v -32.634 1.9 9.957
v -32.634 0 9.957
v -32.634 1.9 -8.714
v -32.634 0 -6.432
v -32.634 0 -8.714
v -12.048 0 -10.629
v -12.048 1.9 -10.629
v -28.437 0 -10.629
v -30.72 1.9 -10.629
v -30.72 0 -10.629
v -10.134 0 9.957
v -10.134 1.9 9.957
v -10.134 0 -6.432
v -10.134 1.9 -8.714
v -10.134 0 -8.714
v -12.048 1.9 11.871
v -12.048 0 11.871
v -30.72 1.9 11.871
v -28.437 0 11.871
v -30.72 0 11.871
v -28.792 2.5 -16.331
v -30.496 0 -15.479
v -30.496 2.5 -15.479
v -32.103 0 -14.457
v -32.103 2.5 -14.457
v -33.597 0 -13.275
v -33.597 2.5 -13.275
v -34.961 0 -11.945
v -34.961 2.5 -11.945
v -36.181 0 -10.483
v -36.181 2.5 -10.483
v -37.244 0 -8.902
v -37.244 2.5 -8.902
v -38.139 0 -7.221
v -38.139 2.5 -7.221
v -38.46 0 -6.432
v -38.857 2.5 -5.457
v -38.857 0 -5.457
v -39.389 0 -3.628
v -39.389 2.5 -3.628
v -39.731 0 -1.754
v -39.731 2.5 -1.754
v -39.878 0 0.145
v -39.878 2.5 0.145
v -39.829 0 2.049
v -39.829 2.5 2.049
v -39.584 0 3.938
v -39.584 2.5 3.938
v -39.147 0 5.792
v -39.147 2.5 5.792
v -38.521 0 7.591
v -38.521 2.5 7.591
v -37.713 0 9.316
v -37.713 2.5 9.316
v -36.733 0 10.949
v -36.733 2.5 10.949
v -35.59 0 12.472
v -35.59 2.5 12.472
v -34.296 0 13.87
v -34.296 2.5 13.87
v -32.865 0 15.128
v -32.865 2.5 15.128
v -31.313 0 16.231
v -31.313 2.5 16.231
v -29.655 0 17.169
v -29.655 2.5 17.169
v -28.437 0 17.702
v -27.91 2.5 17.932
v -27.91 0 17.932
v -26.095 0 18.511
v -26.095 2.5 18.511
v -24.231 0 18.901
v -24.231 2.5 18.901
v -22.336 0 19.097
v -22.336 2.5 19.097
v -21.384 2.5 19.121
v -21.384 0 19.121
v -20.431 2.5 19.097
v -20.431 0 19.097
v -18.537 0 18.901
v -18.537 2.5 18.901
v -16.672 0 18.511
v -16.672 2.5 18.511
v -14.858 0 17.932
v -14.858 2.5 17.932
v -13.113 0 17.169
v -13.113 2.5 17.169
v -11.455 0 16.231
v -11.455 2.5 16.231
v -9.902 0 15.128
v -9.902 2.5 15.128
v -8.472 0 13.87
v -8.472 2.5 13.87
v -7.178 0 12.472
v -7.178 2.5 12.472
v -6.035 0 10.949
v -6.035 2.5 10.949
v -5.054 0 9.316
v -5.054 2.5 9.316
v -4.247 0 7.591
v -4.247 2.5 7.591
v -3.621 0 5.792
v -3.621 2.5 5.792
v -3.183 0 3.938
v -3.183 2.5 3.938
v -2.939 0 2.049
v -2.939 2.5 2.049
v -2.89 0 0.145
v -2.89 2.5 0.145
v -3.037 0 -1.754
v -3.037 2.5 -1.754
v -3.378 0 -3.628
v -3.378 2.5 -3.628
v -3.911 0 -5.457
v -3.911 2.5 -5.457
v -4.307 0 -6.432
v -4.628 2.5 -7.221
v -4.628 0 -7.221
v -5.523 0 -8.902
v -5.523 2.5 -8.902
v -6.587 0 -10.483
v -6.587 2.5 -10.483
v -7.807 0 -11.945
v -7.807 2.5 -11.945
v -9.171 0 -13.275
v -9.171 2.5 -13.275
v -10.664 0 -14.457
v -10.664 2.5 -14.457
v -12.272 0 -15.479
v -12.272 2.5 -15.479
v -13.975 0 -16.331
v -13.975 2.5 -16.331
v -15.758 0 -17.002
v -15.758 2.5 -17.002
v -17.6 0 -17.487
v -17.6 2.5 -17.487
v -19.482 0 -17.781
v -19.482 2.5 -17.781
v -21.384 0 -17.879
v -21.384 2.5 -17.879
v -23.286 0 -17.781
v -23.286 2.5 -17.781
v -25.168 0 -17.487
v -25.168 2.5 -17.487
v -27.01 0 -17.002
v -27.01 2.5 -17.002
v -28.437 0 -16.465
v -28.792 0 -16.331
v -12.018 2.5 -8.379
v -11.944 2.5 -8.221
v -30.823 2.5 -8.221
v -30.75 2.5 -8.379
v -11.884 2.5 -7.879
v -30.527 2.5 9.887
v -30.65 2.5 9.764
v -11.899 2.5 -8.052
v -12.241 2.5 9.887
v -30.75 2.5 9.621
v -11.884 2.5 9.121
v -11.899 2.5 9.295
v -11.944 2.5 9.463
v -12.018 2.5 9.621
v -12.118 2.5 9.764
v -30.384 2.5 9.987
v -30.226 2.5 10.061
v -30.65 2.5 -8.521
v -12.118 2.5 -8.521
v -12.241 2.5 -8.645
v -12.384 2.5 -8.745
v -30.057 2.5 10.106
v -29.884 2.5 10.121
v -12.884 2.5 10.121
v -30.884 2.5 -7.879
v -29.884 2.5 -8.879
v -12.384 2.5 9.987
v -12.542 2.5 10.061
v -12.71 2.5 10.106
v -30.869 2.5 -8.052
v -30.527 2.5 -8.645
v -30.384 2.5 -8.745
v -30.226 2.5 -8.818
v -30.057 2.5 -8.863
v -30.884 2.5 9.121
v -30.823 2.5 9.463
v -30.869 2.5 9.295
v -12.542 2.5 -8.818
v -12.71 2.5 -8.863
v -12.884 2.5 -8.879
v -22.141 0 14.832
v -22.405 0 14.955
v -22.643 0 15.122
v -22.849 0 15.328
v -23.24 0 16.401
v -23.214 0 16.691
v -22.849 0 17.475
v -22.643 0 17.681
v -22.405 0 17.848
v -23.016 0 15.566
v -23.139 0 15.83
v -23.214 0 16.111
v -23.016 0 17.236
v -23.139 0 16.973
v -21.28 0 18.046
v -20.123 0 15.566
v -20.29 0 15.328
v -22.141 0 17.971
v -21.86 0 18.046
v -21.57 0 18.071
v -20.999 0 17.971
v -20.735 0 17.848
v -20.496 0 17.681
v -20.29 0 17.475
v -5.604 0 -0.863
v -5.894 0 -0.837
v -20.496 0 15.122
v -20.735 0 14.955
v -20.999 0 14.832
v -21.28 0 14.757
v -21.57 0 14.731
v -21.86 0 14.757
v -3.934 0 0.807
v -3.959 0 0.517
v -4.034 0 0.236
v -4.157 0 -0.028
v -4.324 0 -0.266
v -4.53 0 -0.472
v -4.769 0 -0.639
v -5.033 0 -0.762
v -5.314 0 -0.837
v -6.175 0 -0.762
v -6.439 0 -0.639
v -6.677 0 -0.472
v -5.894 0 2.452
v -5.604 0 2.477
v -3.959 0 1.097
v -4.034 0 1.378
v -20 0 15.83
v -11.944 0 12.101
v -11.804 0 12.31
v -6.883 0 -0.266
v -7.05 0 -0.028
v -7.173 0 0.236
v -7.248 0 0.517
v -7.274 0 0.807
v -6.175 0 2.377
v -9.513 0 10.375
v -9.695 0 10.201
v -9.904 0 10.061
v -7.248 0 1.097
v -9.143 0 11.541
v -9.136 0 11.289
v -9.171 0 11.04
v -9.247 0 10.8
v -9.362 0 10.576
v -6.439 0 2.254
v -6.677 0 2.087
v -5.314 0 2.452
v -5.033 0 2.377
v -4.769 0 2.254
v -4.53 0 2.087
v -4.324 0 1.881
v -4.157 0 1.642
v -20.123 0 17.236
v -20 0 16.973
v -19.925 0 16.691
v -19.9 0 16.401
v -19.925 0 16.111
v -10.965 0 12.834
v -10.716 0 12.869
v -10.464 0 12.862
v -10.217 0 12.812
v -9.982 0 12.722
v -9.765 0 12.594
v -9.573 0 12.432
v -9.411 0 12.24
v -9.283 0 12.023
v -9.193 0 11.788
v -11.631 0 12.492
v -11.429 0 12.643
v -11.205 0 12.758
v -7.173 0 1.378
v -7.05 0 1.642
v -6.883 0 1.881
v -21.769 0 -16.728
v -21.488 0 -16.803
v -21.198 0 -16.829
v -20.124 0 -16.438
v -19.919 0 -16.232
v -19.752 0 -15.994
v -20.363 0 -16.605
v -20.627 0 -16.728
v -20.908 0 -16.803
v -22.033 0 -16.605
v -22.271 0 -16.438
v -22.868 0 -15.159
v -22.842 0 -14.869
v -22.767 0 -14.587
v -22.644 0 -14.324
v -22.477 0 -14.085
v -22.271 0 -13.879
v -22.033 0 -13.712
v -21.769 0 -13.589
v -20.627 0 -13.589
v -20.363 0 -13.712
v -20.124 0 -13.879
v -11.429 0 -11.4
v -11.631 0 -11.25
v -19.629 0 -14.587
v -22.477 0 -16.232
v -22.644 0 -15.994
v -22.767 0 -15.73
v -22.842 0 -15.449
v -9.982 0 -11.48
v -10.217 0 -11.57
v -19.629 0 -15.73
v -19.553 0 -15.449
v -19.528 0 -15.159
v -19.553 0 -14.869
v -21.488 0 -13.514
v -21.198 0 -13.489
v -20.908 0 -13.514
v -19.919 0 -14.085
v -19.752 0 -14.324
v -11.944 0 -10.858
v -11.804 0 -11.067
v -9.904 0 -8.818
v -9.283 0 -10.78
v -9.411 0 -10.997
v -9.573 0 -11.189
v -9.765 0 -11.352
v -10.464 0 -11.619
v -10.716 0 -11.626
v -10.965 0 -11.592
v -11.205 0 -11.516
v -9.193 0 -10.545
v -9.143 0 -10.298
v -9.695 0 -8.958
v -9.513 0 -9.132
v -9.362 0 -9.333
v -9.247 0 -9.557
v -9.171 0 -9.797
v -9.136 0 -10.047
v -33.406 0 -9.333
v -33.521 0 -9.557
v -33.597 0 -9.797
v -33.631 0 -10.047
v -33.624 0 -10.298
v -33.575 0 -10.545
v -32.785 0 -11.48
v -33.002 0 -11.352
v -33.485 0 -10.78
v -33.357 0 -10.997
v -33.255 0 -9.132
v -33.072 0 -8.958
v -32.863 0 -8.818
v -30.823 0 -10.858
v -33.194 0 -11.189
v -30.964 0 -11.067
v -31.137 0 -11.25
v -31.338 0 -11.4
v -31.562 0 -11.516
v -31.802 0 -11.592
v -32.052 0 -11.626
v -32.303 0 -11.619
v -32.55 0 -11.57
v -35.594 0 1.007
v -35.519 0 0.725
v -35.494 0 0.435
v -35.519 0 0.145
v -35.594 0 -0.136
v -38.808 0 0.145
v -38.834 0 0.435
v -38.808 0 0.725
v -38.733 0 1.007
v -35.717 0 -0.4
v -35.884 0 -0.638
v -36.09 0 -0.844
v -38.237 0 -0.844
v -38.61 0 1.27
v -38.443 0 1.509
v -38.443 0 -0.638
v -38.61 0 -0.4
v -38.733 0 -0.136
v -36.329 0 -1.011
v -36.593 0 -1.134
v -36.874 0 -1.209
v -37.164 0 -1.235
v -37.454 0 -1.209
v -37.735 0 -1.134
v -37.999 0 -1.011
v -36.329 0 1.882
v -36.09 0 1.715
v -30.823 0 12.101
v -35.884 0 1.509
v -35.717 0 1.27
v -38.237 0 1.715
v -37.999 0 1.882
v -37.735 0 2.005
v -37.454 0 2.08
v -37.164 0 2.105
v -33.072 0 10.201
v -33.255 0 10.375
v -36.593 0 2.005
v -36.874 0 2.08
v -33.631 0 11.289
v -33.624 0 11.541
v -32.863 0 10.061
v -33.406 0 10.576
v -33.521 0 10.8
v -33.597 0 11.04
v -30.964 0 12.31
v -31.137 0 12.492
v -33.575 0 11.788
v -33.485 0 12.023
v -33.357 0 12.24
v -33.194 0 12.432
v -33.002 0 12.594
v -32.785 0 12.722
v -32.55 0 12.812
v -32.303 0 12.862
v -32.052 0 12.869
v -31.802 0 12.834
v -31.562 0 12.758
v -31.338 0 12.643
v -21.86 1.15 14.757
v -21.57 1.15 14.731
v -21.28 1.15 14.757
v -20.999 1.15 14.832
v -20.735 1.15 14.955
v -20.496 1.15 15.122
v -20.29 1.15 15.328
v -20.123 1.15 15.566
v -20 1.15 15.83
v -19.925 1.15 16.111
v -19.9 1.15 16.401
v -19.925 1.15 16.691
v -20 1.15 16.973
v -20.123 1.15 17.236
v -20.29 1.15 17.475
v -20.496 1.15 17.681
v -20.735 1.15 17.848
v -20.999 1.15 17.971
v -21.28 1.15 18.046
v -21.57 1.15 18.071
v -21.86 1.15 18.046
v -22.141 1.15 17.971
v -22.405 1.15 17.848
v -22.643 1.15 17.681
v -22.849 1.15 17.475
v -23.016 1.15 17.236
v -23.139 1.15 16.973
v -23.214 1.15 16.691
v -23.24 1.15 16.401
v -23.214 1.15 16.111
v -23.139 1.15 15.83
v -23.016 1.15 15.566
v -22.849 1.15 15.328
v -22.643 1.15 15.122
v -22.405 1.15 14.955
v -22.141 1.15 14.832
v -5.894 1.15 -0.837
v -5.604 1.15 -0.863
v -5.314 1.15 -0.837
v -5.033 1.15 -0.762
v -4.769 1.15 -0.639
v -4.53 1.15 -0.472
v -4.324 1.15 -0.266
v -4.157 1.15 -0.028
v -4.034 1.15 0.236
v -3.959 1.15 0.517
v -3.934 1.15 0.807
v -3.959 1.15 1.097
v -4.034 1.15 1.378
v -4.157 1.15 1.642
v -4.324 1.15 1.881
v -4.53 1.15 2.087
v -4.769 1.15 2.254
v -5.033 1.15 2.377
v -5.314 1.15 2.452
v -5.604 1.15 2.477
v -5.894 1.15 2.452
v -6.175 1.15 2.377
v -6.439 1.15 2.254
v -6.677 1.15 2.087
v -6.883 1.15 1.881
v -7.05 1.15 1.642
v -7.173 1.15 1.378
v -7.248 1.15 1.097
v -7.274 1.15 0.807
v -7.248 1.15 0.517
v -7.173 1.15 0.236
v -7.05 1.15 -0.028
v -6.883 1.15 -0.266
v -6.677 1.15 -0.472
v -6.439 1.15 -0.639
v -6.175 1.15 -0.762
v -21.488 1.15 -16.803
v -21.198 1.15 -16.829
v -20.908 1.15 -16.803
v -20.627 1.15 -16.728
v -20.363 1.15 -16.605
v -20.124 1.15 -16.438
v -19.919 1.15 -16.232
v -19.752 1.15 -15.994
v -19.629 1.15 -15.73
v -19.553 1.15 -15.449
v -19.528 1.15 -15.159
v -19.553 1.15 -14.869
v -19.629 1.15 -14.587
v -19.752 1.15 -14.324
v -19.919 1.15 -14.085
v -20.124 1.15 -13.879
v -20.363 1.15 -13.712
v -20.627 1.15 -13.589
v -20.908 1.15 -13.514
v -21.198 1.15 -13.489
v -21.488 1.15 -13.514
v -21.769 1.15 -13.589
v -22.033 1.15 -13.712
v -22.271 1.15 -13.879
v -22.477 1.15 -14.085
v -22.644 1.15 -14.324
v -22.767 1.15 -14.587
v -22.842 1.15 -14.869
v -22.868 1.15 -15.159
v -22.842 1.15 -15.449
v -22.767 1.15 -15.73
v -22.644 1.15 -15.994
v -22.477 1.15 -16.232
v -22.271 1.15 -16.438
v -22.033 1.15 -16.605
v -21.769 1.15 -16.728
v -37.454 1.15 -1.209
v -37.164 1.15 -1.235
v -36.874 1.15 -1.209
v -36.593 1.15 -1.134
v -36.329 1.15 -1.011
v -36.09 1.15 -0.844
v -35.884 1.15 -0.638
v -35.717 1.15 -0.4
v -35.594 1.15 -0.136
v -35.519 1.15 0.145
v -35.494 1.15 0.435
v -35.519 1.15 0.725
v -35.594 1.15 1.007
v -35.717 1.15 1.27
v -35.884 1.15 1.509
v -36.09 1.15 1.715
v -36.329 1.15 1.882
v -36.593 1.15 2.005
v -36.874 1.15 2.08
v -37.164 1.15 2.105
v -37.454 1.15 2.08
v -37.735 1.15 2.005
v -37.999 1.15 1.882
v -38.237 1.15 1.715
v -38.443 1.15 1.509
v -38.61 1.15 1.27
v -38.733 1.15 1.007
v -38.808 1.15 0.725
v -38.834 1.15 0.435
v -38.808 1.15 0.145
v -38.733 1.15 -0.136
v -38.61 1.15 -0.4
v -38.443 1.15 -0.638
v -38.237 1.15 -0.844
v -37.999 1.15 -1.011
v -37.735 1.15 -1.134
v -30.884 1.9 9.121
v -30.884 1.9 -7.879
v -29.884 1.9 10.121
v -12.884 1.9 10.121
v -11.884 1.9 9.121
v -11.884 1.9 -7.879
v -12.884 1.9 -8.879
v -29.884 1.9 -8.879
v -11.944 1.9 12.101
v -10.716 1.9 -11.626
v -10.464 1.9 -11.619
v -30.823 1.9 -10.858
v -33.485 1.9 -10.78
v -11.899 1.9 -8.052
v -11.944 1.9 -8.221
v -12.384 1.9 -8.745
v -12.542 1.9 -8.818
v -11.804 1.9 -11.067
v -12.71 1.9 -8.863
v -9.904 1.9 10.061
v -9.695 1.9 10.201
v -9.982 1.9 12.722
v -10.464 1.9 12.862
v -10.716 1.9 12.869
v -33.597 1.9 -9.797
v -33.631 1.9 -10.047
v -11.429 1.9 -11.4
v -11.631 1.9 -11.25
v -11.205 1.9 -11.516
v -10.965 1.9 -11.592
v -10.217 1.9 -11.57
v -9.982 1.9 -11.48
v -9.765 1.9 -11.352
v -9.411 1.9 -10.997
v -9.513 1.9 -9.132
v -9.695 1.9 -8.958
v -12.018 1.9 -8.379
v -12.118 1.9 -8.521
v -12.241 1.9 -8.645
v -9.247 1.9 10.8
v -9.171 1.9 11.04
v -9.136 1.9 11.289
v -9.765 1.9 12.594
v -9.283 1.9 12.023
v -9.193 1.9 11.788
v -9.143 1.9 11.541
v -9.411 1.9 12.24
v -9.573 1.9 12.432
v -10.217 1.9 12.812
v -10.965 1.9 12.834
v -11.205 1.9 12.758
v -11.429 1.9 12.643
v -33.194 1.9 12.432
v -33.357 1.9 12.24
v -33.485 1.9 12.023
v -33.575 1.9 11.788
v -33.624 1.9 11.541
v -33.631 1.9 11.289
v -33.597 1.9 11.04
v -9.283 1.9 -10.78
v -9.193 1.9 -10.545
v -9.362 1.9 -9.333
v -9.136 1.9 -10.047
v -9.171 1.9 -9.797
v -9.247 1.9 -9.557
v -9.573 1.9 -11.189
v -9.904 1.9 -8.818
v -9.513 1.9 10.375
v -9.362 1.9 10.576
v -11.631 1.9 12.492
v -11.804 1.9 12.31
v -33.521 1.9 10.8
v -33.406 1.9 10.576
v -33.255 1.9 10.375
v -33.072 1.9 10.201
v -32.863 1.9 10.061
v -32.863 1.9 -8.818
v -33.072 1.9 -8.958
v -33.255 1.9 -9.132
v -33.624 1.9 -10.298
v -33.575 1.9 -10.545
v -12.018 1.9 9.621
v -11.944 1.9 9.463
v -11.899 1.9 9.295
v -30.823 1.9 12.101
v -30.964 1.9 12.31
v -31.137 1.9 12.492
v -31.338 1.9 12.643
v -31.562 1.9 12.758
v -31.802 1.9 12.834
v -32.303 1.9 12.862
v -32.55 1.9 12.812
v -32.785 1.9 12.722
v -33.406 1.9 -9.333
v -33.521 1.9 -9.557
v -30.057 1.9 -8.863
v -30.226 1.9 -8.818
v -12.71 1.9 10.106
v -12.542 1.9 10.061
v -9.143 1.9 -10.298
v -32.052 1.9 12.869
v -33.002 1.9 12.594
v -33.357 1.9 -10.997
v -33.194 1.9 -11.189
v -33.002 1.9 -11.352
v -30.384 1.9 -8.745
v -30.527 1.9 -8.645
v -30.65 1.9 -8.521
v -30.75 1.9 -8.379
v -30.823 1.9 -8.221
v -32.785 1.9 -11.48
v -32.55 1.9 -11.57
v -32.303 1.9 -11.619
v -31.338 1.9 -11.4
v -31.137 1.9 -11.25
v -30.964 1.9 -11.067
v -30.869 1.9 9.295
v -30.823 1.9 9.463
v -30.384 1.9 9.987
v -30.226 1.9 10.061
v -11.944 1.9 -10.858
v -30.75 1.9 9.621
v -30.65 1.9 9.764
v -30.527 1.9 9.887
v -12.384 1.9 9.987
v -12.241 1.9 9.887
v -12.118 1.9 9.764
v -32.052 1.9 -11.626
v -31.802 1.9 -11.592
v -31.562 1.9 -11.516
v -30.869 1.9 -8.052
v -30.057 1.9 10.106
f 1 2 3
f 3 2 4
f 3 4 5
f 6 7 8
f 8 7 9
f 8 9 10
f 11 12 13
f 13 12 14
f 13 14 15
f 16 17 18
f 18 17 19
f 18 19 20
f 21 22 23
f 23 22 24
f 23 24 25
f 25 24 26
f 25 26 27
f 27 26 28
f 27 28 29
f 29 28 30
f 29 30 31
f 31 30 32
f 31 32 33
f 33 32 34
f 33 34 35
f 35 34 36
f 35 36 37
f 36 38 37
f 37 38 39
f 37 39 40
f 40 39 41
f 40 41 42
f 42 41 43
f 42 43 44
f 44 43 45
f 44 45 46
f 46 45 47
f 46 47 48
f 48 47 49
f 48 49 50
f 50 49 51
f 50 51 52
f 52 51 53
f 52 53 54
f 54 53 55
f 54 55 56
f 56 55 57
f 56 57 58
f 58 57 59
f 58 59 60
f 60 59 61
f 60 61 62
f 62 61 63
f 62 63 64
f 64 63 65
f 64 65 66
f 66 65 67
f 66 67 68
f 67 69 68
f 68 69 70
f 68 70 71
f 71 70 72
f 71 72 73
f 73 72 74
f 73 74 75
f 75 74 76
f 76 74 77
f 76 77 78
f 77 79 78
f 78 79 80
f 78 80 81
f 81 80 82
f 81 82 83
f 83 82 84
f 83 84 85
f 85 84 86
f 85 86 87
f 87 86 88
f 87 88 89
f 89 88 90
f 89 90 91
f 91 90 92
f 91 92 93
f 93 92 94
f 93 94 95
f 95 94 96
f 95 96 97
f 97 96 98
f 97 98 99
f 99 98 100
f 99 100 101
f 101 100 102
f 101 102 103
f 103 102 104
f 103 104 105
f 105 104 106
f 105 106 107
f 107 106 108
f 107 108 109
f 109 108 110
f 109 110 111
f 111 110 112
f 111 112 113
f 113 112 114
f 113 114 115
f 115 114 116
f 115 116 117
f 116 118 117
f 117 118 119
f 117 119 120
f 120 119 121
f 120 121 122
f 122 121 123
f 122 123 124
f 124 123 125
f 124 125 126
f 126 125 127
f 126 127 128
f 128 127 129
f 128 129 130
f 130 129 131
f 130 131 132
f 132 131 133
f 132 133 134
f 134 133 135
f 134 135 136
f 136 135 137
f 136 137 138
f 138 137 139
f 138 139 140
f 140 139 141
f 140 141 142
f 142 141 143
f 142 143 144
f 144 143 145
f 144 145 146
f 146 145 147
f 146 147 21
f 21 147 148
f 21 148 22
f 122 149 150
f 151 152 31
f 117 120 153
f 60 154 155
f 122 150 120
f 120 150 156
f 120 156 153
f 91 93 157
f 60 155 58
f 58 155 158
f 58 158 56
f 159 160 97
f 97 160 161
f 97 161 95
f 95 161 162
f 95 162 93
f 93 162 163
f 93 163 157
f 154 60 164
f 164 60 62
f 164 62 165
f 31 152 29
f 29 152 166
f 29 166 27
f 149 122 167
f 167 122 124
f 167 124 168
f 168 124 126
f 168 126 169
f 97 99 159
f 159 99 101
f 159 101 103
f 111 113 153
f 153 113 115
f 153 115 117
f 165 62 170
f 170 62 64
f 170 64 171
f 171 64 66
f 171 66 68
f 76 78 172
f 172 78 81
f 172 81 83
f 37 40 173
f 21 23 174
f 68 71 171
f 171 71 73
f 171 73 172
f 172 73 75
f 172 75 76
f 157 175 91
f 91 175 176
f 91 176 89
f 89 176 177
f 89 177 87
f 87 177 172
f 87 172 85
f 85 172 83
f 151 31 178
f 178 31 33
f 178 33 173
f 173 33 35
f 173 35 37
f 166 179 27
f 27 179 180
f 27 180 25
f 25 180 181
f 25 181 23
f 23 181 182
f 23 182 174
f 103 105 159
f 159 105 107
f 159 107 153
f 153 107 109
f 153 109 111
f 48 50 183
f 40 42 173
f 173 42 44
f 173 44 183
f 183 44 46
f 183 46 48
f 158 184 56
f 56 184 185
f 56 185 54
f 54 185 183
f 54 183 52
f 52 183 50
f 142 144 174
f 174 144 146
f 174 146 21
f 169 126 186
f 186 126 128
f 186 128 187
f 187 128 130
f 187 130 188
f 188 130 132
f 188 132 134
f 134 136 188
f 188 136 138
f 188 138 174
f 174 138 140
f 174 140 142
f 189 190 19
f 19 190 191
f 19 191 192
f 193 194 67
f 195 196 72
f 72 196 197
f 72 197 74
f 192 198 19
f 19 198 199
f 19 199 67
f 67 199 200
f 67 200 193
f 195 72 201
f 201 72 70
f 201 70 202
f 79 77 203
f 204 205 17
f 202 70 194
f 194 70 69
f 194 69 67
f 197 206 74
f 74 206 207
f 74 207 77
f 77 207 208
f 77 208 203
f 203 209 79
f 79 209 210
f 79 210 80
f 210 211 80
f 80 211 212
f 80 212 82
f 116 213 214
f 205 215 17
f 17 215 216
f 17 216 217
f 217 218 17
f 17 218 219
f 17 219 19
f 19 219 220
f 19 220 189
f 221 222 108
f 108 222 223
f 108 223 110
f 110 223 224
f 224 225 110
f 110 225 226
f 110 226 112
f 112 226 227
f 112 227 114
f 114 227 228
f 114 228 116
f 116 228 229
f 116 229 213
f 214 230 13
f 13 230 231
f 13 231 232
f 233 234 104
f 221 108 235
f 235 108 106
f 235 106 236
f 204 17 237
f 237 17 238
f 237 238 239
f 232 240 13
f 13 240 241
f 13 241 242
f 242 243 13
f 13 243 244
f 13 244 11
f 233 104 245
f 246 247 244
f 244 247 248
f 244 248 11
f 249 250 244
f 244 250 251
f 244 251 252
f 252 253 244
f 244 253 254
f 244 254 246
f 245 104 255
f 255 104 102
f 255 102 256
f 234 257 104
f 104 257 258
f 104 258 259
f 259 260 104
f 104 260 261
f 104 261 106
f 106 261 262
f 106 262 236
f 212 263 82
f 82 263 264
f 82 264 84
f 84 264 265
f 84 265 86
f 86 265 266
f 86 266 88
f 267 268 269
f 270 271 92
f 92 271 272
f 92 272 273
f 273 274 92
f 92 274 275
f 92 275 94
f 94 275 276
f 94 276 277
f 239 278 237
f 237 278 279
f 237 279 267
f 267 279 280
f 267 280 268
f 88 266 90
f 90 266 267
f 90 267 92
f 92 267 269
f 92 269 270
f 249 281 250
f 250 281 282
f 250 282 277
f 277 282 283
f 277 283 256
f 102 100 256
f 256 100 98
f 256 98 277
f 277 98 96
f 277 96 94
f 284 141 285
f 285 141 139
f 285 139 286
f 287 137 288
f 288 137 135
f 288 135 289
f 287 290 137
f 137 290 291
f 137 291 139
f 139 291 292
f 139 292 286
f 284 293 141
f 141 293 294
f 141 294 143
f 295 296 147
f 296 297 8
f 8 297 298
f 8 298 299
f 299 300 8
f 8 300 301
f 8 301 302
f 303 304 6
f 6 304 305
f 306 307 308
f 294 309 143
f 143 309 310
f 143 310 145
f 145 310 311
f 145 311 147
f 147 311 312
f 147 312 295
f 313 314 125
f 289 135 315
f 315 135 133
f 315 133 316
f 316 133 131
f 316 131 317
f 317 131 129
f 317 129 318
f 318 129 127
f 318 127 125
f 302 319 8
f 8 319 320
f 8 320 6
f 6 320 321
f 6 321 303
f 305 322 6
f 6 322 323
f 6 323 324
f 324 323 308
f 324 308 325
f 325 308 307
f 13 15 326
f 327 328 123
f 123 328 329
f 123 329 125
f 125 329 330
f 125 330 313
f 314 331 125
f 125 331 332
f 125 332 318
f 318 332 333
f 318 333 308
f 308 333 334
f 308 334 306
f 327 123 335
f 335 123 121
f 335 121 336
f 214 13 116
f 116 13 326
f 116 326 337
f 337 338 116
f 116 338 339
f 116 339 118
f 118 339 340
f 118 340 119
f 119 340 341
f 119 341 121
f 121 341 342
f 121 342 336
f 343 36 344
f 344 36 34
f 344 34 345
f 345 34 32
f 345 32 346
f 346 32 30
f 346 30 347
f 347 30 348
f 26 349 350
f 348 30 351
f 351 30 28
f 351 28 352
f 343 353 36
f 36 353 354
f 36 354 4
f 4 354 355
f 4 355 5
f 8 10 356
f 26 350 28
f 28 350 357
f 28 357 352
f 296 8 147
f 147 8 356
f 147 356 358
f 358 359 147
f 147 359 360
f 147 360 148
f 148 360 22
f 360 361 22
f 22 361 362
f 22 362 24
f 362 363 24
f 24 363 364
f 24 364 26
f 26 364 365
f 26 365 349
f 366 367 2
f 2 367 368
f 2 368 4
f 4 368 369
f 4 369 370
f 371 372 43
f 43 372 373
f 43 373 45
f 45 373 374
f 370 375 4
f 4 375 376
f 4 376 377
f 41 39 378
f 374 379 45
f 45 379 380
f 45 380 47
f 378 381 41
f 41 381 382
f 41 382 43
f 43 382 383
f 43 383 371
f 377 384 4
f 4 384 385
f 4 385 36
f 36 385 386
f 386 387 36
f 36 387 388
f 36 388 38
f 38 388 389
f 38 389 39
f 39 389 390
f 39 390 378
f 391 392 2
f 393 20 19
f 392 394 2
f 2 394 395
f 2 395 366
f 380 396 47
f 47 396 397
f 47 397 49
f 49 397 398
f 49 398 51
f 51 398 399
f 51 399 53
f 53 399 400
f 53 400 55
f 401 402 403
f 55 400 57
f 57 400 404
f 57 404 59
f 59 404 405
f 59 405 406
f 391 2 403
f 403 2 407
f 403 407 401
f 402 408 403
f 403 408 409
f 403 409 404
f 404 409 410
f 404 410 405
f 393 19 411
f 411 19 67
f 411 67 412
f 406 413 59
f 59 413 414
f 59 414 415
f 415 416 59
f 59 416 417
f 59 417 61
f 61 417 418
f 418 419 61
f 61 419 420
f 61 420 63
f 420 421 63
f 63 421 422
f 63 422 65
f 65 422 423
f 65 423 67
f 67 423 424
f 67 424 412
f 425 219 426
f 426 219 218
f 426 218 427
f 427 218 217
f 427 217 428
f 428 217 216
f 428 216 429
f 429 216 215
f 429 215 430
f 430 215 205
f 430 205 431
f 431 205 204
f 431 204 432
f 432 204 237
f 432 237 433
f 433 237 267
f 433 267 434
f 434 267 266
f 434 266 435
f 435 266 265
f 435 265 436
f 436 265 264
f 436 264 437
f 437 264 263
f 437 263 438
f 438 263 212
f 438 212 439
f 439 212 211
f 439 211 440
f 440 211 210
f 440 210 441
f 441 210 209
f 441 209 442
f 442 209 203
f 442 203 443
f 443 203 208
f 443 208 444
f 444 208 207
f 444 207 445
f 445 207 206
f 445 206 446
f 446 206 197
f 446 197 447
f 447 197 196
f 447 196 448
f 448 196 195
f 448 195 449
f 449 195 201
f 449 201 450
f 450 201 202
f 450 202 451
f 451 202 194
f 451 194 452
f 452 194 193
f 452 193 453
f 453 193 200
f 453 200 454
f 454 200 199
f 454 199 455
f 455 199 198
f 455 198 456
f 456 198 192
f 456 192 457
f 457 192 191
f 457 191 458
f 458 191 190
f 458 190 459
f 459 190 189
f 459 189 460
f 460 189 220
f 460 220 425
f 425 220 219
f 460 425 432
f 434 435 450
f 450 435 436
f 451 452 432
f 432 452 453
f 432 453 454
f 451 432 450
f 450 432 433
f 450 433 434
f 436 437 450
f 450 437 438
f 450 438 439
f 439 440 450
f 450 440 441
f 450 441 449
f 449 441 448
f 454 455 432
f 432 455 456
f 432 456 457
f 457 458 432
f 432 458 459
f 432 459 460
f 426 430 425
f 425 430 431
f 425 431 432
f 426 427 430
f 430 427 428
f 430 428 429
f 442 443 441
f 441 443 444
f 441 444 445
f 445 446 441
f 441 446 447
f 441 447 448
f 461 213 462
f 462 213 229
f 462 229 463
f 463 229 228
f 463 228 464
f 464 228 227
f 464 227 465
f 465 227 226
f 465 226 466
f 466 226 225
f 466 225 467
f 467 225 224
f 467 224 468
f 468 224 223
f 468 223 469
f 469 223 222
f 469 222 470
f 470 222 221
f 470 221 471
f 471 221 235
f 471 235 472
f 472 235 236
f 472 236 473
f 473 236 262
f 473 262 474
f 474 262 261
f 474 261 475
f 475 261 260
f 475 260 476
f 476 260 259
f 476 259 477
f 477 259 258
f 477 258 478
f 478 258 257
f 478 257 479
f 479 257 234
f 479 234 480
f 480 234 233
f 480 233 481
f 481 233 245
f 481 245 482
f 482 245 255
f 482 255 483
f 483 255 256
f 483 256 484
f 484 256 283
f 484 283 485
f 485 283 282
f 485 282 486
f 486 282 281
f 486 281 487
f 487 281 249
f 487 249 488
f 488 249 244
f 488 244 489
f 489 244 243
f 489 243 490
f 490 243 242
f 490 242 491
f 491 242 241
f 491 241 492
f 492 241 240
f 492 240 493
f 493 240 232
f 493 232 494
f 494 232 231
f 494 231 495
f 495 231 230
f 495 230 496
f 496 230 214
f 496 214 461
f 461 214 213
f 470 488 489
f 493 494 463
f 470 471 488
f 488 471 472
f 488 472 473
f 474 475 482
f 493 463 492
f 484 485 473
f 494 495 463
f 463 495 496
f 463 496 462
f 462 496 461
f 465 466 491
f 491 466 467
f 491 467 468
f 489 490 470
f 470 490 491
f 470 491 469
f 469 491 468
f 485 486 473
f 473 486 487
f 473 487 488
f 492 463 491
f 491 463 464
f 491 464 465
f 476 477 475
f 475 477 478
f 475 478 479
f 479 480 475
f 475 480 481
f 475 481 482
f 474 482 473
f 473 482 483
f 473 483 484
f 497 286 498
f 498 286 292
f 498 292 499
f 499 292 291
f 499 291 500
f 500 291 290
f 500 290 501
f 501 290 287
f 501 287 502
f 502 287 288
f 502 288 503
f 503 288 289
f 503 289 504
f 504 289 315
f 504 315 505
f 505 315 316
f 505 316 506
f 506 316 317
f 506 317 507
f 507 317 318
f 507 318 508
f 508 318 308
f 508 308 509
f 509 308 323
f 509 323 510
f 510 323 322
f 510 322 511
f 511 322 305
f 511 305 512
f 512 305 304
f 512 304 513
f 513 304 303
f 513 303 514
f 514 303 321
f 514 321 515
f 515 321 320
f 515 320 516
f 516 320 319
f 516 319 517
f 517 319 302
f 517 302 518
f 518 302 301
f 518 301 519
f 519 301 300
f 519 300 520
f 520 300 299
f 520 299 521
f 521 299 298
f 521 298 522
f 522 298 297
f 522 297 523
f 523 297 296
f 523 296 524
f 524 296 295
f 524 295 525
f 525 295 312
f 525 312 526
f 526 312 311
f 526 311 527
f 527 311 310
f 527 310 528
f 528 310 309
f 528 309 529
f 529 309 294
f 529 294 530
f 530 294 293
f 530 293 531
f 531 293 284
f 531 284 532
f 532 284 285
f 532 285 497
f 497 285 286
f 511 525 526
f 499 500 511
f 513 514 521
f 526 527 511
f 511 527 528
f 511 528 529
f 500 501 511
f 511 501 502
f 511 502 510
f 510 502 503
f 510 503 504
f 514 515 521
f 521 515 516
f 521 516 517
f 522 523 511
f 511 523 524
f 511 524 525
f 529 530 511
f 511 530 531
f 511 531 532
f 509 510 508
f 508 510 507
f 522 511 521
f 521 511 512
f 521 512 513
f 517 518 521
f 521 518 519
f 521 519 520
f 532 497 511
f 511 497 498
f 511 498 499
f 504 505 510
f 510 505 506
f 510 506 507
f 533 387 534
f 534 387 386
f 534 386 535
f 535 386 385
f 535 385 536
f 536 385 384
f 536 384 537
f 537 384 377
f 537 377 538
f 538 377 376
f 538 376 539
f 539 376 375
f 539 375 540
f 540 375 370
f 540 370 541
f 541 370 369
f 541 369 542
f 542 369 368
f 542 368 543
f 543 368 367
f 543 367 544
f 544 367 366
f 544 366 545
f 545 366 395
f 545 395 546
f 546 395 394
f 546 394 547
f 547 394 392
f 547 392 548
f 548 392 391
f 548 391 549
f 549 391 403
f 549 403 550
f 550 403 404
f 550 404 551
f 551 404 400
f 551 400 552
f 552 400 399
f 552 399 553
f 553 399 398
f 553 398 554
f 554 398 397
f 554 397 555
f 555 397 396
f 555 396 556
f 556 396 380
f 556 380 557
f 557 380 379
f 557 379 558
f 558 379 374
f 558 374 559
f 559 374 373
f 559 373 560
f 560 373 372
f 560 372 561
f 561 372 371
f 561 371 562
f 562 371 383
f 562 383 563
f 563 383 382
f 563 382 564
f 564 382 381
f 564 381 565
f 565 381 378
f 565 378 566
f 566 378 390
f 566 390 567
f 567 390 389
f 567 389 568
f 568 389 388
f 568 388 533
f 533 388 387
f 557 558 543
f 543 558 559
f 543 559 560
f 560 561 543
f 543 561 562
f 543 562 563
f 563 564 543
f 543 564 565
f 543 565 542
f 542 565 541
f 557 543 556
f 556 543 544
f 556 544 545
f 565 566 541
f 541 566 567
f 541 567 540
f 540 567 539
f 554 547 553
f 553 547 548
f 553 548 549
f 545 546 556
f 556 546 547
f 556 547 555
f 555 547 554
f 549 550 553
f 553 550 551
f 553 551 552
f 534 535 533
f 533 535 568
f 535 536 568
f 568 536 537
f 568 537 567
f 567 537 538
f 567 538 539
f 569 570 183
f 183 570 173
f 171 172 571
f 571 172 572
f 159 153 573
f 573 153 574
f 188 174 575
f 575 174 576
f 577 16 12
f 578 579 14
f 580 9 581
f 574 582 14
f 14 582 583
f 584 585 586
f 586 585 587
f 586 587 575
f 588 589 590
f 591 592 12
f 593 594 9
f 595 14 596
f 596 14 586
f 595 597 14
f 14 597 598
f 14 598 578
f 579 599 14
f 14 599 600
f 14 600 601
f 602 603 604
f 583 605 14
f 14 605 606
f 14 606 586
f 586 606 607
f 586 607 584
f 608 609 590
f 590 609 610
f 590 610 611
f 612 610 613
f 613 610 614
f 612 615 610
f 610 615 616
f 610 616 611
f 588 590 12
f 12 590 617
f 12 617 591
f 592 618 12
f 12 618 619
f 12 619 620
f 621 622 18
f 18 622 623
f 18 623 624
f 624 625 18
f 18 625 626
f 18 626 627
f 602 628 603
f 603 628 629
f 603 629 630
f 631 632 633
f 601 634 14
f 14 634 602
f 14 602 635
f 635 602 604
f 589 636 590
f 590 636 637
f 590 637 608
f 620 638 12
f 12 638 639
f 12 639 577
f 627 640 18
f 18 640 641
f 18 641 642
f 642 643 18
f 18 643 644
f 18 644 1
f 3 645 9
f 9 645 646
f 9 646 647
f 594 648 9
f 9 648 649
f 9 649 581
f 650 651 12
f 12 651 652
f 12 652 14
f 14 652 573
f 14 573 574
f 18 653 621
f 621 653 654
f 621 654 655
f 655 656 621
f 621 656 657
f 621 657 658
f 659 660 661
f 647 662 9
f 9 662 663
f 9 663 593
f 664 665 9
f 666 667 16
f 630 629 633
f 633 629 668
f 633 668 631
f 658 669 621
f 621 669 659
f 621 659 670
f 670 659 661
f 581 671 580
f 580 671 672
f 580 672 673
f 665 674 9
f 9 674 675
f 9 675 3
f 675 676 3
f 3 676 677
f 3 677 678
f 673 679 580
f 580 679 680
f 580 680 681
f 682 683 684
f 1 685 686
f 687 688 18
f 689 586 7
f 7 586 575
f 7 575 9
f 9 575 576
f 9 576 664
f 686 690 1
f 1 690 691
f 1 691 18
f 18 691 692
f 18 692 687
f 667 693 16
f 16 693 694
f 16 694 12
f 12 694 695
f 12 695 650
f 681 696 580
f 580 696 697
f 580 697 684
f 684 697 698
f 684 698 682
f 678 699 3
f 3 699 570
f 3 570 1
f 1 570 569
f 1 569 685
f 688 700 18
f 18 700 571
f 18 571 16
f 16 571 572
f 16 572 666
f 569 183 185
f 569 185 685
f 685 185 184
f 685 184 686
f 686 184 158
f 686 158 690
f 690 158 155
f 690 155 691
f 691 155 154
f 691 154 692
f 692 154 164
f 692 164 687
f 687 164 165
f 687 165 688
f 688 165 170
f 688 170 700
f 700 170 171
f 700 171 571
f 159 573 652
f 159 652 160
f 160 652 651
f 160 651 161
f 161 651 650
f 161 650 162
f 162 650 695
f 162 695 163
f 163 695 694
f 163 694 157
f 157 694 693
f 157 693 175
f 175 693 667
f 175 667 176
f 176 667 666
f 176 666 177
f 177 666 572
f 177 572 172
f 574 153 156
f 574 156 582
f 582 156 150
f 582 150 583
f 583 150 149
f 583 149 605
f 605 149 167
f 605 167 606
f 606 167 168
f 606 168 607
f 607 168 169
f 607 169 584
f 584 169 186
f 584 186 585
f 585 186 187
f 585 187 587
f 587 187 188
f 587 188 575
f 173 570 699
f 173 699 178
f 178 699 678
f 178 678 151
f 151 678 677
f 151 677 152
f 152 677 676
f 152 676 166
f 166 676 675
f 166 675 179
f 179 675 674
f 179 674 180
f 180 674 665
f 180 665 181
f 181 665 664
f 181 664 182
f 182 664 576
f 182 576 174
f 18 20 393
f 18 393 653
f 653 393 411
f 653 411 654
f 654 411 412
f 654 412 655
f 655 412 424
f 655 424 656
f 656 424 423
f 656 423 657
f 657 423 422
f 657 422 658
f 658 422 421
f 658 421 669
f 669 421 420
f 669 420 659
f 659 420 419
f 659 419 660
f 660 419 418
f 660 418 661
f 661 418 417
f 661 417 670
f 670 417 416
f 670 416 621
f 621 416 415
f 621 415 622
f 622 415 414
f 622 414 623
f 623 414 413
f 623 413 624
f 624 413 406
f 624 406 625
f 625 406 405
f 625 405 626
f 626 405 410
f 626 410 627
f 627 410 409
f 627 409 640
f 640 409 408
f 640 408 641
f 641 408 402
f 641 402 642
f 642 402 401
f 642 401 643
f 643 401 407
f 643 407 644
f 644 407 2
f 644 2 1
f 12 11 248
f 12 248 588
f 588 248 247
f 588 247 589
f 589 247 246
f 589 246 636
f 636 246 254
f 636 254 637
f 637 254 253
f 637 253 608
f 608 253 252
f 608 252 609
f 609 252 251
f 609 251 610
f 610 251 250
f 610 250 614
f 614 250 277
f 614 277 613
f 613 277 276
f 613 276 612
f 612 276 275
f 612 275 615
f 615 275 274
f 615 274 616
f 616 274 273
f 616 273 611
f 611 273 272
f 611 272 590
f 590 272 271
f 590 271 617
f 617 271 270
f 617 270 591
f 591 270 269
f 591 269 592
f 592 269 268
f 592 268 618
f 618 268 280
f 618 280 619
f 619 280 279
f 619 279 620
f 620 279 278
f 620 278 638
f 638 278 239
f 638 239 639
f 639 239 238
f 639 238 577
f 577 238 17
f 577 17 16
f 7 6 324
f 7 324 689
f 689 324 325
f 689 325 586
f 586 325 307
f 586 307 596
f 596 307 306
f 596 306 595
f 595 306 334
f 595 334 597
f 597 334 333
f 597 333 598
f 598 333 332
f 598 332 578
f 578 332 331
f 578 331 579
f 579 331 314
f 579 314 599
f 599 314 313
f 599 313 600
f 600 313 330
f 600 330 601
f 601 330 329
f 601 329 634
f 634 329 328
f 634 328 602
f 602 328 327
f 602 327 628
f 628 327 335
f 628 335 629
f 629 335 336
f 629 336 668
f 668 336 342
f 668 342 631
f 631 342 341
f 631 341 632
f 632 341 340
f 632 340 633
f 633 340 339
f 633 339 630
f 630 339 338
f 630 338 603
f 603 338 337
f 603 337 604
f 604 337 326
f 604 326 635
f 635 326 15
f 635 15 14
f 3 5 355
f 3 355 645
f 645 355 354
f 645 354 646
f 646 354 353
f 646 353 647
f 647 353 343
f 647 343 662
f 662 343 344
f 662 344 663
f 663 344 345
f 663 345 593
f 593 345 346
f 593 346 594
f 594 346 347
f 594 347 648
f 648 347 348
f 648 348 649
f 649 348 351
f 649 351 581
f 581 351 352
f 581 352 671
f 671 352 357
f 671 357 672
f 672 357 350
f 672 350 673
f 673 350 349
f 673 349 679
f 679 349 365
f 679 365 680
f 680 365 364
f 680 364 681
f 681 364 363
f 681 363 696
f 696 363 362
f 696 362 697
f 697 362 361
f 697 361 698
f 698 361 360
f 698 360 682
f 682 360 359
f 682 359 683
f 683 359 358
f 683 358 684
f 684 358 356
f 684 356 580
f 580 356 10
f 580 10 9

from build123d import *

# Parameters (mm, degrees)
SKETCH2_R           = 18.5
SKETCH2_W           = 22.5
SKETCH2_H           = 22.5
BOSS_EXTRUDE1_DEPTH = 2.5
SKETCH4_R           = 1.67
CUT_EXTRUDE1_DEPTH  = 1.15
CIRPATTERN1_COUNT   = 4
SKETCH5_W           = 22.5
SKETCH5_H           = 22.5
SKETCH5_W_2         = 19
SKETCH5_H_2         = 19
BOSS_EXTRUDE2_DEPTH = 0.6
FILLET1_R           = 1
SKETCH6_R           = 1.5
CUT_EXTRUDE2_DEPTH  = 1.9


with BuildPart() as part:
    # Sketch2 → Boss-Extrude1 (new body)
    with BuildSketch(Plane(origin=(0, 0, 0), x_dir=(1, 0, 0), z_dir=(0, 1, 0))):
        with Locations(Location((-21.383734207, -0.621346489, 0), (0, 0, 270))):
            Circle(SKETCH2_R)
        with Locations((-21.383734207, -0.621346489)):
            Rectangle(SKETCH2_W, SKETCH2_H, mode=Mode.SUBTRACT)
    extrude(amount=BOSS_EXTRUDE1_DEPTH)

    # Sketch4 → Cut-Extrude1 (cut)
    with BuildSketch(Plane.XZ):
        with Locations(Location((-21.569675845, 16.401346489, 0), (0, 0, 270))):
            Circle(SKETCH4_R)
    cut_extrude1 = extrude(amount=-CUT_EXTRUDE1_DEPTH, mode=Mode.SUBTRACT)

    # CirPattern1: Cut-Extrude1 ×4 about axis
    cirpattern1_axis = Axis((-21.383734207, 0, 0.621346489), (0, 1, 0))
    for i in range(1, CIRPATTERN1_COUNT):
        add(cut_extrude1.rotate(cirpattern1_axis, i * 360 / CIRPATTERN1_COUNT), mode=Mode.SUBTRACT)

    # Sketch5 → Boss-Extrude2 (add)
    with BuildSketch(Plane(origin=(0, 2.5, 0), x_dir=(1, 0, 0), z_dir=(0, 1, 0))):
        with Locations((-21.383734207, -0.621346489)):
            Rectangle(SKETCH5_W, SKETCH5_H)
        with Locations((-21.383734207, -0.621346489)):
            Rectangle(SKETCH5_W_2, SKETCH5_H_2, mode=Mode.SUBTRACT)
    extrude(amount=-BOSS_EXTRUDE2_DEPTH)

    # Fillet1
    fillet1_edges = [part.edges().sort_by_distance(p)[0] for p in [
        (-30.883734207, 2.2, -8.878653511),
        (-30.883734207, 2.2, 10.121346489),
        (-11.883734207, 2.2, 10.121346489),
        (-11.883734207, 2.2, -8.878653511),
    ]]
    fillet(fillet1_edges, radius=FILLET1_R)

    # Sketch6 → Cut-Extrude2 (cut)
    with BuildSketch(Plane(origin=(0, 0, 0), x_dir=(-1, 0, 0), z_dir=(0, -1, 0))):
        with Locations((32.133734207, -11.371346489)):
            Circle(SKETCH6_R)
        with Locations((10.633734207, -11.371346489)):
            Circle(SKETCH6_R)
        with Locations((10.633734207, 10.128653511)):
            Circle(SKETCH6_R)
        with Locations((32.133734207, 10.128653511)):
            Circle(SKETCH6_R)
    extrude(amount=-CUT_EXTRUDE2_DEPTH, mode=Mode.SUBTRACT)


solid = part.part
